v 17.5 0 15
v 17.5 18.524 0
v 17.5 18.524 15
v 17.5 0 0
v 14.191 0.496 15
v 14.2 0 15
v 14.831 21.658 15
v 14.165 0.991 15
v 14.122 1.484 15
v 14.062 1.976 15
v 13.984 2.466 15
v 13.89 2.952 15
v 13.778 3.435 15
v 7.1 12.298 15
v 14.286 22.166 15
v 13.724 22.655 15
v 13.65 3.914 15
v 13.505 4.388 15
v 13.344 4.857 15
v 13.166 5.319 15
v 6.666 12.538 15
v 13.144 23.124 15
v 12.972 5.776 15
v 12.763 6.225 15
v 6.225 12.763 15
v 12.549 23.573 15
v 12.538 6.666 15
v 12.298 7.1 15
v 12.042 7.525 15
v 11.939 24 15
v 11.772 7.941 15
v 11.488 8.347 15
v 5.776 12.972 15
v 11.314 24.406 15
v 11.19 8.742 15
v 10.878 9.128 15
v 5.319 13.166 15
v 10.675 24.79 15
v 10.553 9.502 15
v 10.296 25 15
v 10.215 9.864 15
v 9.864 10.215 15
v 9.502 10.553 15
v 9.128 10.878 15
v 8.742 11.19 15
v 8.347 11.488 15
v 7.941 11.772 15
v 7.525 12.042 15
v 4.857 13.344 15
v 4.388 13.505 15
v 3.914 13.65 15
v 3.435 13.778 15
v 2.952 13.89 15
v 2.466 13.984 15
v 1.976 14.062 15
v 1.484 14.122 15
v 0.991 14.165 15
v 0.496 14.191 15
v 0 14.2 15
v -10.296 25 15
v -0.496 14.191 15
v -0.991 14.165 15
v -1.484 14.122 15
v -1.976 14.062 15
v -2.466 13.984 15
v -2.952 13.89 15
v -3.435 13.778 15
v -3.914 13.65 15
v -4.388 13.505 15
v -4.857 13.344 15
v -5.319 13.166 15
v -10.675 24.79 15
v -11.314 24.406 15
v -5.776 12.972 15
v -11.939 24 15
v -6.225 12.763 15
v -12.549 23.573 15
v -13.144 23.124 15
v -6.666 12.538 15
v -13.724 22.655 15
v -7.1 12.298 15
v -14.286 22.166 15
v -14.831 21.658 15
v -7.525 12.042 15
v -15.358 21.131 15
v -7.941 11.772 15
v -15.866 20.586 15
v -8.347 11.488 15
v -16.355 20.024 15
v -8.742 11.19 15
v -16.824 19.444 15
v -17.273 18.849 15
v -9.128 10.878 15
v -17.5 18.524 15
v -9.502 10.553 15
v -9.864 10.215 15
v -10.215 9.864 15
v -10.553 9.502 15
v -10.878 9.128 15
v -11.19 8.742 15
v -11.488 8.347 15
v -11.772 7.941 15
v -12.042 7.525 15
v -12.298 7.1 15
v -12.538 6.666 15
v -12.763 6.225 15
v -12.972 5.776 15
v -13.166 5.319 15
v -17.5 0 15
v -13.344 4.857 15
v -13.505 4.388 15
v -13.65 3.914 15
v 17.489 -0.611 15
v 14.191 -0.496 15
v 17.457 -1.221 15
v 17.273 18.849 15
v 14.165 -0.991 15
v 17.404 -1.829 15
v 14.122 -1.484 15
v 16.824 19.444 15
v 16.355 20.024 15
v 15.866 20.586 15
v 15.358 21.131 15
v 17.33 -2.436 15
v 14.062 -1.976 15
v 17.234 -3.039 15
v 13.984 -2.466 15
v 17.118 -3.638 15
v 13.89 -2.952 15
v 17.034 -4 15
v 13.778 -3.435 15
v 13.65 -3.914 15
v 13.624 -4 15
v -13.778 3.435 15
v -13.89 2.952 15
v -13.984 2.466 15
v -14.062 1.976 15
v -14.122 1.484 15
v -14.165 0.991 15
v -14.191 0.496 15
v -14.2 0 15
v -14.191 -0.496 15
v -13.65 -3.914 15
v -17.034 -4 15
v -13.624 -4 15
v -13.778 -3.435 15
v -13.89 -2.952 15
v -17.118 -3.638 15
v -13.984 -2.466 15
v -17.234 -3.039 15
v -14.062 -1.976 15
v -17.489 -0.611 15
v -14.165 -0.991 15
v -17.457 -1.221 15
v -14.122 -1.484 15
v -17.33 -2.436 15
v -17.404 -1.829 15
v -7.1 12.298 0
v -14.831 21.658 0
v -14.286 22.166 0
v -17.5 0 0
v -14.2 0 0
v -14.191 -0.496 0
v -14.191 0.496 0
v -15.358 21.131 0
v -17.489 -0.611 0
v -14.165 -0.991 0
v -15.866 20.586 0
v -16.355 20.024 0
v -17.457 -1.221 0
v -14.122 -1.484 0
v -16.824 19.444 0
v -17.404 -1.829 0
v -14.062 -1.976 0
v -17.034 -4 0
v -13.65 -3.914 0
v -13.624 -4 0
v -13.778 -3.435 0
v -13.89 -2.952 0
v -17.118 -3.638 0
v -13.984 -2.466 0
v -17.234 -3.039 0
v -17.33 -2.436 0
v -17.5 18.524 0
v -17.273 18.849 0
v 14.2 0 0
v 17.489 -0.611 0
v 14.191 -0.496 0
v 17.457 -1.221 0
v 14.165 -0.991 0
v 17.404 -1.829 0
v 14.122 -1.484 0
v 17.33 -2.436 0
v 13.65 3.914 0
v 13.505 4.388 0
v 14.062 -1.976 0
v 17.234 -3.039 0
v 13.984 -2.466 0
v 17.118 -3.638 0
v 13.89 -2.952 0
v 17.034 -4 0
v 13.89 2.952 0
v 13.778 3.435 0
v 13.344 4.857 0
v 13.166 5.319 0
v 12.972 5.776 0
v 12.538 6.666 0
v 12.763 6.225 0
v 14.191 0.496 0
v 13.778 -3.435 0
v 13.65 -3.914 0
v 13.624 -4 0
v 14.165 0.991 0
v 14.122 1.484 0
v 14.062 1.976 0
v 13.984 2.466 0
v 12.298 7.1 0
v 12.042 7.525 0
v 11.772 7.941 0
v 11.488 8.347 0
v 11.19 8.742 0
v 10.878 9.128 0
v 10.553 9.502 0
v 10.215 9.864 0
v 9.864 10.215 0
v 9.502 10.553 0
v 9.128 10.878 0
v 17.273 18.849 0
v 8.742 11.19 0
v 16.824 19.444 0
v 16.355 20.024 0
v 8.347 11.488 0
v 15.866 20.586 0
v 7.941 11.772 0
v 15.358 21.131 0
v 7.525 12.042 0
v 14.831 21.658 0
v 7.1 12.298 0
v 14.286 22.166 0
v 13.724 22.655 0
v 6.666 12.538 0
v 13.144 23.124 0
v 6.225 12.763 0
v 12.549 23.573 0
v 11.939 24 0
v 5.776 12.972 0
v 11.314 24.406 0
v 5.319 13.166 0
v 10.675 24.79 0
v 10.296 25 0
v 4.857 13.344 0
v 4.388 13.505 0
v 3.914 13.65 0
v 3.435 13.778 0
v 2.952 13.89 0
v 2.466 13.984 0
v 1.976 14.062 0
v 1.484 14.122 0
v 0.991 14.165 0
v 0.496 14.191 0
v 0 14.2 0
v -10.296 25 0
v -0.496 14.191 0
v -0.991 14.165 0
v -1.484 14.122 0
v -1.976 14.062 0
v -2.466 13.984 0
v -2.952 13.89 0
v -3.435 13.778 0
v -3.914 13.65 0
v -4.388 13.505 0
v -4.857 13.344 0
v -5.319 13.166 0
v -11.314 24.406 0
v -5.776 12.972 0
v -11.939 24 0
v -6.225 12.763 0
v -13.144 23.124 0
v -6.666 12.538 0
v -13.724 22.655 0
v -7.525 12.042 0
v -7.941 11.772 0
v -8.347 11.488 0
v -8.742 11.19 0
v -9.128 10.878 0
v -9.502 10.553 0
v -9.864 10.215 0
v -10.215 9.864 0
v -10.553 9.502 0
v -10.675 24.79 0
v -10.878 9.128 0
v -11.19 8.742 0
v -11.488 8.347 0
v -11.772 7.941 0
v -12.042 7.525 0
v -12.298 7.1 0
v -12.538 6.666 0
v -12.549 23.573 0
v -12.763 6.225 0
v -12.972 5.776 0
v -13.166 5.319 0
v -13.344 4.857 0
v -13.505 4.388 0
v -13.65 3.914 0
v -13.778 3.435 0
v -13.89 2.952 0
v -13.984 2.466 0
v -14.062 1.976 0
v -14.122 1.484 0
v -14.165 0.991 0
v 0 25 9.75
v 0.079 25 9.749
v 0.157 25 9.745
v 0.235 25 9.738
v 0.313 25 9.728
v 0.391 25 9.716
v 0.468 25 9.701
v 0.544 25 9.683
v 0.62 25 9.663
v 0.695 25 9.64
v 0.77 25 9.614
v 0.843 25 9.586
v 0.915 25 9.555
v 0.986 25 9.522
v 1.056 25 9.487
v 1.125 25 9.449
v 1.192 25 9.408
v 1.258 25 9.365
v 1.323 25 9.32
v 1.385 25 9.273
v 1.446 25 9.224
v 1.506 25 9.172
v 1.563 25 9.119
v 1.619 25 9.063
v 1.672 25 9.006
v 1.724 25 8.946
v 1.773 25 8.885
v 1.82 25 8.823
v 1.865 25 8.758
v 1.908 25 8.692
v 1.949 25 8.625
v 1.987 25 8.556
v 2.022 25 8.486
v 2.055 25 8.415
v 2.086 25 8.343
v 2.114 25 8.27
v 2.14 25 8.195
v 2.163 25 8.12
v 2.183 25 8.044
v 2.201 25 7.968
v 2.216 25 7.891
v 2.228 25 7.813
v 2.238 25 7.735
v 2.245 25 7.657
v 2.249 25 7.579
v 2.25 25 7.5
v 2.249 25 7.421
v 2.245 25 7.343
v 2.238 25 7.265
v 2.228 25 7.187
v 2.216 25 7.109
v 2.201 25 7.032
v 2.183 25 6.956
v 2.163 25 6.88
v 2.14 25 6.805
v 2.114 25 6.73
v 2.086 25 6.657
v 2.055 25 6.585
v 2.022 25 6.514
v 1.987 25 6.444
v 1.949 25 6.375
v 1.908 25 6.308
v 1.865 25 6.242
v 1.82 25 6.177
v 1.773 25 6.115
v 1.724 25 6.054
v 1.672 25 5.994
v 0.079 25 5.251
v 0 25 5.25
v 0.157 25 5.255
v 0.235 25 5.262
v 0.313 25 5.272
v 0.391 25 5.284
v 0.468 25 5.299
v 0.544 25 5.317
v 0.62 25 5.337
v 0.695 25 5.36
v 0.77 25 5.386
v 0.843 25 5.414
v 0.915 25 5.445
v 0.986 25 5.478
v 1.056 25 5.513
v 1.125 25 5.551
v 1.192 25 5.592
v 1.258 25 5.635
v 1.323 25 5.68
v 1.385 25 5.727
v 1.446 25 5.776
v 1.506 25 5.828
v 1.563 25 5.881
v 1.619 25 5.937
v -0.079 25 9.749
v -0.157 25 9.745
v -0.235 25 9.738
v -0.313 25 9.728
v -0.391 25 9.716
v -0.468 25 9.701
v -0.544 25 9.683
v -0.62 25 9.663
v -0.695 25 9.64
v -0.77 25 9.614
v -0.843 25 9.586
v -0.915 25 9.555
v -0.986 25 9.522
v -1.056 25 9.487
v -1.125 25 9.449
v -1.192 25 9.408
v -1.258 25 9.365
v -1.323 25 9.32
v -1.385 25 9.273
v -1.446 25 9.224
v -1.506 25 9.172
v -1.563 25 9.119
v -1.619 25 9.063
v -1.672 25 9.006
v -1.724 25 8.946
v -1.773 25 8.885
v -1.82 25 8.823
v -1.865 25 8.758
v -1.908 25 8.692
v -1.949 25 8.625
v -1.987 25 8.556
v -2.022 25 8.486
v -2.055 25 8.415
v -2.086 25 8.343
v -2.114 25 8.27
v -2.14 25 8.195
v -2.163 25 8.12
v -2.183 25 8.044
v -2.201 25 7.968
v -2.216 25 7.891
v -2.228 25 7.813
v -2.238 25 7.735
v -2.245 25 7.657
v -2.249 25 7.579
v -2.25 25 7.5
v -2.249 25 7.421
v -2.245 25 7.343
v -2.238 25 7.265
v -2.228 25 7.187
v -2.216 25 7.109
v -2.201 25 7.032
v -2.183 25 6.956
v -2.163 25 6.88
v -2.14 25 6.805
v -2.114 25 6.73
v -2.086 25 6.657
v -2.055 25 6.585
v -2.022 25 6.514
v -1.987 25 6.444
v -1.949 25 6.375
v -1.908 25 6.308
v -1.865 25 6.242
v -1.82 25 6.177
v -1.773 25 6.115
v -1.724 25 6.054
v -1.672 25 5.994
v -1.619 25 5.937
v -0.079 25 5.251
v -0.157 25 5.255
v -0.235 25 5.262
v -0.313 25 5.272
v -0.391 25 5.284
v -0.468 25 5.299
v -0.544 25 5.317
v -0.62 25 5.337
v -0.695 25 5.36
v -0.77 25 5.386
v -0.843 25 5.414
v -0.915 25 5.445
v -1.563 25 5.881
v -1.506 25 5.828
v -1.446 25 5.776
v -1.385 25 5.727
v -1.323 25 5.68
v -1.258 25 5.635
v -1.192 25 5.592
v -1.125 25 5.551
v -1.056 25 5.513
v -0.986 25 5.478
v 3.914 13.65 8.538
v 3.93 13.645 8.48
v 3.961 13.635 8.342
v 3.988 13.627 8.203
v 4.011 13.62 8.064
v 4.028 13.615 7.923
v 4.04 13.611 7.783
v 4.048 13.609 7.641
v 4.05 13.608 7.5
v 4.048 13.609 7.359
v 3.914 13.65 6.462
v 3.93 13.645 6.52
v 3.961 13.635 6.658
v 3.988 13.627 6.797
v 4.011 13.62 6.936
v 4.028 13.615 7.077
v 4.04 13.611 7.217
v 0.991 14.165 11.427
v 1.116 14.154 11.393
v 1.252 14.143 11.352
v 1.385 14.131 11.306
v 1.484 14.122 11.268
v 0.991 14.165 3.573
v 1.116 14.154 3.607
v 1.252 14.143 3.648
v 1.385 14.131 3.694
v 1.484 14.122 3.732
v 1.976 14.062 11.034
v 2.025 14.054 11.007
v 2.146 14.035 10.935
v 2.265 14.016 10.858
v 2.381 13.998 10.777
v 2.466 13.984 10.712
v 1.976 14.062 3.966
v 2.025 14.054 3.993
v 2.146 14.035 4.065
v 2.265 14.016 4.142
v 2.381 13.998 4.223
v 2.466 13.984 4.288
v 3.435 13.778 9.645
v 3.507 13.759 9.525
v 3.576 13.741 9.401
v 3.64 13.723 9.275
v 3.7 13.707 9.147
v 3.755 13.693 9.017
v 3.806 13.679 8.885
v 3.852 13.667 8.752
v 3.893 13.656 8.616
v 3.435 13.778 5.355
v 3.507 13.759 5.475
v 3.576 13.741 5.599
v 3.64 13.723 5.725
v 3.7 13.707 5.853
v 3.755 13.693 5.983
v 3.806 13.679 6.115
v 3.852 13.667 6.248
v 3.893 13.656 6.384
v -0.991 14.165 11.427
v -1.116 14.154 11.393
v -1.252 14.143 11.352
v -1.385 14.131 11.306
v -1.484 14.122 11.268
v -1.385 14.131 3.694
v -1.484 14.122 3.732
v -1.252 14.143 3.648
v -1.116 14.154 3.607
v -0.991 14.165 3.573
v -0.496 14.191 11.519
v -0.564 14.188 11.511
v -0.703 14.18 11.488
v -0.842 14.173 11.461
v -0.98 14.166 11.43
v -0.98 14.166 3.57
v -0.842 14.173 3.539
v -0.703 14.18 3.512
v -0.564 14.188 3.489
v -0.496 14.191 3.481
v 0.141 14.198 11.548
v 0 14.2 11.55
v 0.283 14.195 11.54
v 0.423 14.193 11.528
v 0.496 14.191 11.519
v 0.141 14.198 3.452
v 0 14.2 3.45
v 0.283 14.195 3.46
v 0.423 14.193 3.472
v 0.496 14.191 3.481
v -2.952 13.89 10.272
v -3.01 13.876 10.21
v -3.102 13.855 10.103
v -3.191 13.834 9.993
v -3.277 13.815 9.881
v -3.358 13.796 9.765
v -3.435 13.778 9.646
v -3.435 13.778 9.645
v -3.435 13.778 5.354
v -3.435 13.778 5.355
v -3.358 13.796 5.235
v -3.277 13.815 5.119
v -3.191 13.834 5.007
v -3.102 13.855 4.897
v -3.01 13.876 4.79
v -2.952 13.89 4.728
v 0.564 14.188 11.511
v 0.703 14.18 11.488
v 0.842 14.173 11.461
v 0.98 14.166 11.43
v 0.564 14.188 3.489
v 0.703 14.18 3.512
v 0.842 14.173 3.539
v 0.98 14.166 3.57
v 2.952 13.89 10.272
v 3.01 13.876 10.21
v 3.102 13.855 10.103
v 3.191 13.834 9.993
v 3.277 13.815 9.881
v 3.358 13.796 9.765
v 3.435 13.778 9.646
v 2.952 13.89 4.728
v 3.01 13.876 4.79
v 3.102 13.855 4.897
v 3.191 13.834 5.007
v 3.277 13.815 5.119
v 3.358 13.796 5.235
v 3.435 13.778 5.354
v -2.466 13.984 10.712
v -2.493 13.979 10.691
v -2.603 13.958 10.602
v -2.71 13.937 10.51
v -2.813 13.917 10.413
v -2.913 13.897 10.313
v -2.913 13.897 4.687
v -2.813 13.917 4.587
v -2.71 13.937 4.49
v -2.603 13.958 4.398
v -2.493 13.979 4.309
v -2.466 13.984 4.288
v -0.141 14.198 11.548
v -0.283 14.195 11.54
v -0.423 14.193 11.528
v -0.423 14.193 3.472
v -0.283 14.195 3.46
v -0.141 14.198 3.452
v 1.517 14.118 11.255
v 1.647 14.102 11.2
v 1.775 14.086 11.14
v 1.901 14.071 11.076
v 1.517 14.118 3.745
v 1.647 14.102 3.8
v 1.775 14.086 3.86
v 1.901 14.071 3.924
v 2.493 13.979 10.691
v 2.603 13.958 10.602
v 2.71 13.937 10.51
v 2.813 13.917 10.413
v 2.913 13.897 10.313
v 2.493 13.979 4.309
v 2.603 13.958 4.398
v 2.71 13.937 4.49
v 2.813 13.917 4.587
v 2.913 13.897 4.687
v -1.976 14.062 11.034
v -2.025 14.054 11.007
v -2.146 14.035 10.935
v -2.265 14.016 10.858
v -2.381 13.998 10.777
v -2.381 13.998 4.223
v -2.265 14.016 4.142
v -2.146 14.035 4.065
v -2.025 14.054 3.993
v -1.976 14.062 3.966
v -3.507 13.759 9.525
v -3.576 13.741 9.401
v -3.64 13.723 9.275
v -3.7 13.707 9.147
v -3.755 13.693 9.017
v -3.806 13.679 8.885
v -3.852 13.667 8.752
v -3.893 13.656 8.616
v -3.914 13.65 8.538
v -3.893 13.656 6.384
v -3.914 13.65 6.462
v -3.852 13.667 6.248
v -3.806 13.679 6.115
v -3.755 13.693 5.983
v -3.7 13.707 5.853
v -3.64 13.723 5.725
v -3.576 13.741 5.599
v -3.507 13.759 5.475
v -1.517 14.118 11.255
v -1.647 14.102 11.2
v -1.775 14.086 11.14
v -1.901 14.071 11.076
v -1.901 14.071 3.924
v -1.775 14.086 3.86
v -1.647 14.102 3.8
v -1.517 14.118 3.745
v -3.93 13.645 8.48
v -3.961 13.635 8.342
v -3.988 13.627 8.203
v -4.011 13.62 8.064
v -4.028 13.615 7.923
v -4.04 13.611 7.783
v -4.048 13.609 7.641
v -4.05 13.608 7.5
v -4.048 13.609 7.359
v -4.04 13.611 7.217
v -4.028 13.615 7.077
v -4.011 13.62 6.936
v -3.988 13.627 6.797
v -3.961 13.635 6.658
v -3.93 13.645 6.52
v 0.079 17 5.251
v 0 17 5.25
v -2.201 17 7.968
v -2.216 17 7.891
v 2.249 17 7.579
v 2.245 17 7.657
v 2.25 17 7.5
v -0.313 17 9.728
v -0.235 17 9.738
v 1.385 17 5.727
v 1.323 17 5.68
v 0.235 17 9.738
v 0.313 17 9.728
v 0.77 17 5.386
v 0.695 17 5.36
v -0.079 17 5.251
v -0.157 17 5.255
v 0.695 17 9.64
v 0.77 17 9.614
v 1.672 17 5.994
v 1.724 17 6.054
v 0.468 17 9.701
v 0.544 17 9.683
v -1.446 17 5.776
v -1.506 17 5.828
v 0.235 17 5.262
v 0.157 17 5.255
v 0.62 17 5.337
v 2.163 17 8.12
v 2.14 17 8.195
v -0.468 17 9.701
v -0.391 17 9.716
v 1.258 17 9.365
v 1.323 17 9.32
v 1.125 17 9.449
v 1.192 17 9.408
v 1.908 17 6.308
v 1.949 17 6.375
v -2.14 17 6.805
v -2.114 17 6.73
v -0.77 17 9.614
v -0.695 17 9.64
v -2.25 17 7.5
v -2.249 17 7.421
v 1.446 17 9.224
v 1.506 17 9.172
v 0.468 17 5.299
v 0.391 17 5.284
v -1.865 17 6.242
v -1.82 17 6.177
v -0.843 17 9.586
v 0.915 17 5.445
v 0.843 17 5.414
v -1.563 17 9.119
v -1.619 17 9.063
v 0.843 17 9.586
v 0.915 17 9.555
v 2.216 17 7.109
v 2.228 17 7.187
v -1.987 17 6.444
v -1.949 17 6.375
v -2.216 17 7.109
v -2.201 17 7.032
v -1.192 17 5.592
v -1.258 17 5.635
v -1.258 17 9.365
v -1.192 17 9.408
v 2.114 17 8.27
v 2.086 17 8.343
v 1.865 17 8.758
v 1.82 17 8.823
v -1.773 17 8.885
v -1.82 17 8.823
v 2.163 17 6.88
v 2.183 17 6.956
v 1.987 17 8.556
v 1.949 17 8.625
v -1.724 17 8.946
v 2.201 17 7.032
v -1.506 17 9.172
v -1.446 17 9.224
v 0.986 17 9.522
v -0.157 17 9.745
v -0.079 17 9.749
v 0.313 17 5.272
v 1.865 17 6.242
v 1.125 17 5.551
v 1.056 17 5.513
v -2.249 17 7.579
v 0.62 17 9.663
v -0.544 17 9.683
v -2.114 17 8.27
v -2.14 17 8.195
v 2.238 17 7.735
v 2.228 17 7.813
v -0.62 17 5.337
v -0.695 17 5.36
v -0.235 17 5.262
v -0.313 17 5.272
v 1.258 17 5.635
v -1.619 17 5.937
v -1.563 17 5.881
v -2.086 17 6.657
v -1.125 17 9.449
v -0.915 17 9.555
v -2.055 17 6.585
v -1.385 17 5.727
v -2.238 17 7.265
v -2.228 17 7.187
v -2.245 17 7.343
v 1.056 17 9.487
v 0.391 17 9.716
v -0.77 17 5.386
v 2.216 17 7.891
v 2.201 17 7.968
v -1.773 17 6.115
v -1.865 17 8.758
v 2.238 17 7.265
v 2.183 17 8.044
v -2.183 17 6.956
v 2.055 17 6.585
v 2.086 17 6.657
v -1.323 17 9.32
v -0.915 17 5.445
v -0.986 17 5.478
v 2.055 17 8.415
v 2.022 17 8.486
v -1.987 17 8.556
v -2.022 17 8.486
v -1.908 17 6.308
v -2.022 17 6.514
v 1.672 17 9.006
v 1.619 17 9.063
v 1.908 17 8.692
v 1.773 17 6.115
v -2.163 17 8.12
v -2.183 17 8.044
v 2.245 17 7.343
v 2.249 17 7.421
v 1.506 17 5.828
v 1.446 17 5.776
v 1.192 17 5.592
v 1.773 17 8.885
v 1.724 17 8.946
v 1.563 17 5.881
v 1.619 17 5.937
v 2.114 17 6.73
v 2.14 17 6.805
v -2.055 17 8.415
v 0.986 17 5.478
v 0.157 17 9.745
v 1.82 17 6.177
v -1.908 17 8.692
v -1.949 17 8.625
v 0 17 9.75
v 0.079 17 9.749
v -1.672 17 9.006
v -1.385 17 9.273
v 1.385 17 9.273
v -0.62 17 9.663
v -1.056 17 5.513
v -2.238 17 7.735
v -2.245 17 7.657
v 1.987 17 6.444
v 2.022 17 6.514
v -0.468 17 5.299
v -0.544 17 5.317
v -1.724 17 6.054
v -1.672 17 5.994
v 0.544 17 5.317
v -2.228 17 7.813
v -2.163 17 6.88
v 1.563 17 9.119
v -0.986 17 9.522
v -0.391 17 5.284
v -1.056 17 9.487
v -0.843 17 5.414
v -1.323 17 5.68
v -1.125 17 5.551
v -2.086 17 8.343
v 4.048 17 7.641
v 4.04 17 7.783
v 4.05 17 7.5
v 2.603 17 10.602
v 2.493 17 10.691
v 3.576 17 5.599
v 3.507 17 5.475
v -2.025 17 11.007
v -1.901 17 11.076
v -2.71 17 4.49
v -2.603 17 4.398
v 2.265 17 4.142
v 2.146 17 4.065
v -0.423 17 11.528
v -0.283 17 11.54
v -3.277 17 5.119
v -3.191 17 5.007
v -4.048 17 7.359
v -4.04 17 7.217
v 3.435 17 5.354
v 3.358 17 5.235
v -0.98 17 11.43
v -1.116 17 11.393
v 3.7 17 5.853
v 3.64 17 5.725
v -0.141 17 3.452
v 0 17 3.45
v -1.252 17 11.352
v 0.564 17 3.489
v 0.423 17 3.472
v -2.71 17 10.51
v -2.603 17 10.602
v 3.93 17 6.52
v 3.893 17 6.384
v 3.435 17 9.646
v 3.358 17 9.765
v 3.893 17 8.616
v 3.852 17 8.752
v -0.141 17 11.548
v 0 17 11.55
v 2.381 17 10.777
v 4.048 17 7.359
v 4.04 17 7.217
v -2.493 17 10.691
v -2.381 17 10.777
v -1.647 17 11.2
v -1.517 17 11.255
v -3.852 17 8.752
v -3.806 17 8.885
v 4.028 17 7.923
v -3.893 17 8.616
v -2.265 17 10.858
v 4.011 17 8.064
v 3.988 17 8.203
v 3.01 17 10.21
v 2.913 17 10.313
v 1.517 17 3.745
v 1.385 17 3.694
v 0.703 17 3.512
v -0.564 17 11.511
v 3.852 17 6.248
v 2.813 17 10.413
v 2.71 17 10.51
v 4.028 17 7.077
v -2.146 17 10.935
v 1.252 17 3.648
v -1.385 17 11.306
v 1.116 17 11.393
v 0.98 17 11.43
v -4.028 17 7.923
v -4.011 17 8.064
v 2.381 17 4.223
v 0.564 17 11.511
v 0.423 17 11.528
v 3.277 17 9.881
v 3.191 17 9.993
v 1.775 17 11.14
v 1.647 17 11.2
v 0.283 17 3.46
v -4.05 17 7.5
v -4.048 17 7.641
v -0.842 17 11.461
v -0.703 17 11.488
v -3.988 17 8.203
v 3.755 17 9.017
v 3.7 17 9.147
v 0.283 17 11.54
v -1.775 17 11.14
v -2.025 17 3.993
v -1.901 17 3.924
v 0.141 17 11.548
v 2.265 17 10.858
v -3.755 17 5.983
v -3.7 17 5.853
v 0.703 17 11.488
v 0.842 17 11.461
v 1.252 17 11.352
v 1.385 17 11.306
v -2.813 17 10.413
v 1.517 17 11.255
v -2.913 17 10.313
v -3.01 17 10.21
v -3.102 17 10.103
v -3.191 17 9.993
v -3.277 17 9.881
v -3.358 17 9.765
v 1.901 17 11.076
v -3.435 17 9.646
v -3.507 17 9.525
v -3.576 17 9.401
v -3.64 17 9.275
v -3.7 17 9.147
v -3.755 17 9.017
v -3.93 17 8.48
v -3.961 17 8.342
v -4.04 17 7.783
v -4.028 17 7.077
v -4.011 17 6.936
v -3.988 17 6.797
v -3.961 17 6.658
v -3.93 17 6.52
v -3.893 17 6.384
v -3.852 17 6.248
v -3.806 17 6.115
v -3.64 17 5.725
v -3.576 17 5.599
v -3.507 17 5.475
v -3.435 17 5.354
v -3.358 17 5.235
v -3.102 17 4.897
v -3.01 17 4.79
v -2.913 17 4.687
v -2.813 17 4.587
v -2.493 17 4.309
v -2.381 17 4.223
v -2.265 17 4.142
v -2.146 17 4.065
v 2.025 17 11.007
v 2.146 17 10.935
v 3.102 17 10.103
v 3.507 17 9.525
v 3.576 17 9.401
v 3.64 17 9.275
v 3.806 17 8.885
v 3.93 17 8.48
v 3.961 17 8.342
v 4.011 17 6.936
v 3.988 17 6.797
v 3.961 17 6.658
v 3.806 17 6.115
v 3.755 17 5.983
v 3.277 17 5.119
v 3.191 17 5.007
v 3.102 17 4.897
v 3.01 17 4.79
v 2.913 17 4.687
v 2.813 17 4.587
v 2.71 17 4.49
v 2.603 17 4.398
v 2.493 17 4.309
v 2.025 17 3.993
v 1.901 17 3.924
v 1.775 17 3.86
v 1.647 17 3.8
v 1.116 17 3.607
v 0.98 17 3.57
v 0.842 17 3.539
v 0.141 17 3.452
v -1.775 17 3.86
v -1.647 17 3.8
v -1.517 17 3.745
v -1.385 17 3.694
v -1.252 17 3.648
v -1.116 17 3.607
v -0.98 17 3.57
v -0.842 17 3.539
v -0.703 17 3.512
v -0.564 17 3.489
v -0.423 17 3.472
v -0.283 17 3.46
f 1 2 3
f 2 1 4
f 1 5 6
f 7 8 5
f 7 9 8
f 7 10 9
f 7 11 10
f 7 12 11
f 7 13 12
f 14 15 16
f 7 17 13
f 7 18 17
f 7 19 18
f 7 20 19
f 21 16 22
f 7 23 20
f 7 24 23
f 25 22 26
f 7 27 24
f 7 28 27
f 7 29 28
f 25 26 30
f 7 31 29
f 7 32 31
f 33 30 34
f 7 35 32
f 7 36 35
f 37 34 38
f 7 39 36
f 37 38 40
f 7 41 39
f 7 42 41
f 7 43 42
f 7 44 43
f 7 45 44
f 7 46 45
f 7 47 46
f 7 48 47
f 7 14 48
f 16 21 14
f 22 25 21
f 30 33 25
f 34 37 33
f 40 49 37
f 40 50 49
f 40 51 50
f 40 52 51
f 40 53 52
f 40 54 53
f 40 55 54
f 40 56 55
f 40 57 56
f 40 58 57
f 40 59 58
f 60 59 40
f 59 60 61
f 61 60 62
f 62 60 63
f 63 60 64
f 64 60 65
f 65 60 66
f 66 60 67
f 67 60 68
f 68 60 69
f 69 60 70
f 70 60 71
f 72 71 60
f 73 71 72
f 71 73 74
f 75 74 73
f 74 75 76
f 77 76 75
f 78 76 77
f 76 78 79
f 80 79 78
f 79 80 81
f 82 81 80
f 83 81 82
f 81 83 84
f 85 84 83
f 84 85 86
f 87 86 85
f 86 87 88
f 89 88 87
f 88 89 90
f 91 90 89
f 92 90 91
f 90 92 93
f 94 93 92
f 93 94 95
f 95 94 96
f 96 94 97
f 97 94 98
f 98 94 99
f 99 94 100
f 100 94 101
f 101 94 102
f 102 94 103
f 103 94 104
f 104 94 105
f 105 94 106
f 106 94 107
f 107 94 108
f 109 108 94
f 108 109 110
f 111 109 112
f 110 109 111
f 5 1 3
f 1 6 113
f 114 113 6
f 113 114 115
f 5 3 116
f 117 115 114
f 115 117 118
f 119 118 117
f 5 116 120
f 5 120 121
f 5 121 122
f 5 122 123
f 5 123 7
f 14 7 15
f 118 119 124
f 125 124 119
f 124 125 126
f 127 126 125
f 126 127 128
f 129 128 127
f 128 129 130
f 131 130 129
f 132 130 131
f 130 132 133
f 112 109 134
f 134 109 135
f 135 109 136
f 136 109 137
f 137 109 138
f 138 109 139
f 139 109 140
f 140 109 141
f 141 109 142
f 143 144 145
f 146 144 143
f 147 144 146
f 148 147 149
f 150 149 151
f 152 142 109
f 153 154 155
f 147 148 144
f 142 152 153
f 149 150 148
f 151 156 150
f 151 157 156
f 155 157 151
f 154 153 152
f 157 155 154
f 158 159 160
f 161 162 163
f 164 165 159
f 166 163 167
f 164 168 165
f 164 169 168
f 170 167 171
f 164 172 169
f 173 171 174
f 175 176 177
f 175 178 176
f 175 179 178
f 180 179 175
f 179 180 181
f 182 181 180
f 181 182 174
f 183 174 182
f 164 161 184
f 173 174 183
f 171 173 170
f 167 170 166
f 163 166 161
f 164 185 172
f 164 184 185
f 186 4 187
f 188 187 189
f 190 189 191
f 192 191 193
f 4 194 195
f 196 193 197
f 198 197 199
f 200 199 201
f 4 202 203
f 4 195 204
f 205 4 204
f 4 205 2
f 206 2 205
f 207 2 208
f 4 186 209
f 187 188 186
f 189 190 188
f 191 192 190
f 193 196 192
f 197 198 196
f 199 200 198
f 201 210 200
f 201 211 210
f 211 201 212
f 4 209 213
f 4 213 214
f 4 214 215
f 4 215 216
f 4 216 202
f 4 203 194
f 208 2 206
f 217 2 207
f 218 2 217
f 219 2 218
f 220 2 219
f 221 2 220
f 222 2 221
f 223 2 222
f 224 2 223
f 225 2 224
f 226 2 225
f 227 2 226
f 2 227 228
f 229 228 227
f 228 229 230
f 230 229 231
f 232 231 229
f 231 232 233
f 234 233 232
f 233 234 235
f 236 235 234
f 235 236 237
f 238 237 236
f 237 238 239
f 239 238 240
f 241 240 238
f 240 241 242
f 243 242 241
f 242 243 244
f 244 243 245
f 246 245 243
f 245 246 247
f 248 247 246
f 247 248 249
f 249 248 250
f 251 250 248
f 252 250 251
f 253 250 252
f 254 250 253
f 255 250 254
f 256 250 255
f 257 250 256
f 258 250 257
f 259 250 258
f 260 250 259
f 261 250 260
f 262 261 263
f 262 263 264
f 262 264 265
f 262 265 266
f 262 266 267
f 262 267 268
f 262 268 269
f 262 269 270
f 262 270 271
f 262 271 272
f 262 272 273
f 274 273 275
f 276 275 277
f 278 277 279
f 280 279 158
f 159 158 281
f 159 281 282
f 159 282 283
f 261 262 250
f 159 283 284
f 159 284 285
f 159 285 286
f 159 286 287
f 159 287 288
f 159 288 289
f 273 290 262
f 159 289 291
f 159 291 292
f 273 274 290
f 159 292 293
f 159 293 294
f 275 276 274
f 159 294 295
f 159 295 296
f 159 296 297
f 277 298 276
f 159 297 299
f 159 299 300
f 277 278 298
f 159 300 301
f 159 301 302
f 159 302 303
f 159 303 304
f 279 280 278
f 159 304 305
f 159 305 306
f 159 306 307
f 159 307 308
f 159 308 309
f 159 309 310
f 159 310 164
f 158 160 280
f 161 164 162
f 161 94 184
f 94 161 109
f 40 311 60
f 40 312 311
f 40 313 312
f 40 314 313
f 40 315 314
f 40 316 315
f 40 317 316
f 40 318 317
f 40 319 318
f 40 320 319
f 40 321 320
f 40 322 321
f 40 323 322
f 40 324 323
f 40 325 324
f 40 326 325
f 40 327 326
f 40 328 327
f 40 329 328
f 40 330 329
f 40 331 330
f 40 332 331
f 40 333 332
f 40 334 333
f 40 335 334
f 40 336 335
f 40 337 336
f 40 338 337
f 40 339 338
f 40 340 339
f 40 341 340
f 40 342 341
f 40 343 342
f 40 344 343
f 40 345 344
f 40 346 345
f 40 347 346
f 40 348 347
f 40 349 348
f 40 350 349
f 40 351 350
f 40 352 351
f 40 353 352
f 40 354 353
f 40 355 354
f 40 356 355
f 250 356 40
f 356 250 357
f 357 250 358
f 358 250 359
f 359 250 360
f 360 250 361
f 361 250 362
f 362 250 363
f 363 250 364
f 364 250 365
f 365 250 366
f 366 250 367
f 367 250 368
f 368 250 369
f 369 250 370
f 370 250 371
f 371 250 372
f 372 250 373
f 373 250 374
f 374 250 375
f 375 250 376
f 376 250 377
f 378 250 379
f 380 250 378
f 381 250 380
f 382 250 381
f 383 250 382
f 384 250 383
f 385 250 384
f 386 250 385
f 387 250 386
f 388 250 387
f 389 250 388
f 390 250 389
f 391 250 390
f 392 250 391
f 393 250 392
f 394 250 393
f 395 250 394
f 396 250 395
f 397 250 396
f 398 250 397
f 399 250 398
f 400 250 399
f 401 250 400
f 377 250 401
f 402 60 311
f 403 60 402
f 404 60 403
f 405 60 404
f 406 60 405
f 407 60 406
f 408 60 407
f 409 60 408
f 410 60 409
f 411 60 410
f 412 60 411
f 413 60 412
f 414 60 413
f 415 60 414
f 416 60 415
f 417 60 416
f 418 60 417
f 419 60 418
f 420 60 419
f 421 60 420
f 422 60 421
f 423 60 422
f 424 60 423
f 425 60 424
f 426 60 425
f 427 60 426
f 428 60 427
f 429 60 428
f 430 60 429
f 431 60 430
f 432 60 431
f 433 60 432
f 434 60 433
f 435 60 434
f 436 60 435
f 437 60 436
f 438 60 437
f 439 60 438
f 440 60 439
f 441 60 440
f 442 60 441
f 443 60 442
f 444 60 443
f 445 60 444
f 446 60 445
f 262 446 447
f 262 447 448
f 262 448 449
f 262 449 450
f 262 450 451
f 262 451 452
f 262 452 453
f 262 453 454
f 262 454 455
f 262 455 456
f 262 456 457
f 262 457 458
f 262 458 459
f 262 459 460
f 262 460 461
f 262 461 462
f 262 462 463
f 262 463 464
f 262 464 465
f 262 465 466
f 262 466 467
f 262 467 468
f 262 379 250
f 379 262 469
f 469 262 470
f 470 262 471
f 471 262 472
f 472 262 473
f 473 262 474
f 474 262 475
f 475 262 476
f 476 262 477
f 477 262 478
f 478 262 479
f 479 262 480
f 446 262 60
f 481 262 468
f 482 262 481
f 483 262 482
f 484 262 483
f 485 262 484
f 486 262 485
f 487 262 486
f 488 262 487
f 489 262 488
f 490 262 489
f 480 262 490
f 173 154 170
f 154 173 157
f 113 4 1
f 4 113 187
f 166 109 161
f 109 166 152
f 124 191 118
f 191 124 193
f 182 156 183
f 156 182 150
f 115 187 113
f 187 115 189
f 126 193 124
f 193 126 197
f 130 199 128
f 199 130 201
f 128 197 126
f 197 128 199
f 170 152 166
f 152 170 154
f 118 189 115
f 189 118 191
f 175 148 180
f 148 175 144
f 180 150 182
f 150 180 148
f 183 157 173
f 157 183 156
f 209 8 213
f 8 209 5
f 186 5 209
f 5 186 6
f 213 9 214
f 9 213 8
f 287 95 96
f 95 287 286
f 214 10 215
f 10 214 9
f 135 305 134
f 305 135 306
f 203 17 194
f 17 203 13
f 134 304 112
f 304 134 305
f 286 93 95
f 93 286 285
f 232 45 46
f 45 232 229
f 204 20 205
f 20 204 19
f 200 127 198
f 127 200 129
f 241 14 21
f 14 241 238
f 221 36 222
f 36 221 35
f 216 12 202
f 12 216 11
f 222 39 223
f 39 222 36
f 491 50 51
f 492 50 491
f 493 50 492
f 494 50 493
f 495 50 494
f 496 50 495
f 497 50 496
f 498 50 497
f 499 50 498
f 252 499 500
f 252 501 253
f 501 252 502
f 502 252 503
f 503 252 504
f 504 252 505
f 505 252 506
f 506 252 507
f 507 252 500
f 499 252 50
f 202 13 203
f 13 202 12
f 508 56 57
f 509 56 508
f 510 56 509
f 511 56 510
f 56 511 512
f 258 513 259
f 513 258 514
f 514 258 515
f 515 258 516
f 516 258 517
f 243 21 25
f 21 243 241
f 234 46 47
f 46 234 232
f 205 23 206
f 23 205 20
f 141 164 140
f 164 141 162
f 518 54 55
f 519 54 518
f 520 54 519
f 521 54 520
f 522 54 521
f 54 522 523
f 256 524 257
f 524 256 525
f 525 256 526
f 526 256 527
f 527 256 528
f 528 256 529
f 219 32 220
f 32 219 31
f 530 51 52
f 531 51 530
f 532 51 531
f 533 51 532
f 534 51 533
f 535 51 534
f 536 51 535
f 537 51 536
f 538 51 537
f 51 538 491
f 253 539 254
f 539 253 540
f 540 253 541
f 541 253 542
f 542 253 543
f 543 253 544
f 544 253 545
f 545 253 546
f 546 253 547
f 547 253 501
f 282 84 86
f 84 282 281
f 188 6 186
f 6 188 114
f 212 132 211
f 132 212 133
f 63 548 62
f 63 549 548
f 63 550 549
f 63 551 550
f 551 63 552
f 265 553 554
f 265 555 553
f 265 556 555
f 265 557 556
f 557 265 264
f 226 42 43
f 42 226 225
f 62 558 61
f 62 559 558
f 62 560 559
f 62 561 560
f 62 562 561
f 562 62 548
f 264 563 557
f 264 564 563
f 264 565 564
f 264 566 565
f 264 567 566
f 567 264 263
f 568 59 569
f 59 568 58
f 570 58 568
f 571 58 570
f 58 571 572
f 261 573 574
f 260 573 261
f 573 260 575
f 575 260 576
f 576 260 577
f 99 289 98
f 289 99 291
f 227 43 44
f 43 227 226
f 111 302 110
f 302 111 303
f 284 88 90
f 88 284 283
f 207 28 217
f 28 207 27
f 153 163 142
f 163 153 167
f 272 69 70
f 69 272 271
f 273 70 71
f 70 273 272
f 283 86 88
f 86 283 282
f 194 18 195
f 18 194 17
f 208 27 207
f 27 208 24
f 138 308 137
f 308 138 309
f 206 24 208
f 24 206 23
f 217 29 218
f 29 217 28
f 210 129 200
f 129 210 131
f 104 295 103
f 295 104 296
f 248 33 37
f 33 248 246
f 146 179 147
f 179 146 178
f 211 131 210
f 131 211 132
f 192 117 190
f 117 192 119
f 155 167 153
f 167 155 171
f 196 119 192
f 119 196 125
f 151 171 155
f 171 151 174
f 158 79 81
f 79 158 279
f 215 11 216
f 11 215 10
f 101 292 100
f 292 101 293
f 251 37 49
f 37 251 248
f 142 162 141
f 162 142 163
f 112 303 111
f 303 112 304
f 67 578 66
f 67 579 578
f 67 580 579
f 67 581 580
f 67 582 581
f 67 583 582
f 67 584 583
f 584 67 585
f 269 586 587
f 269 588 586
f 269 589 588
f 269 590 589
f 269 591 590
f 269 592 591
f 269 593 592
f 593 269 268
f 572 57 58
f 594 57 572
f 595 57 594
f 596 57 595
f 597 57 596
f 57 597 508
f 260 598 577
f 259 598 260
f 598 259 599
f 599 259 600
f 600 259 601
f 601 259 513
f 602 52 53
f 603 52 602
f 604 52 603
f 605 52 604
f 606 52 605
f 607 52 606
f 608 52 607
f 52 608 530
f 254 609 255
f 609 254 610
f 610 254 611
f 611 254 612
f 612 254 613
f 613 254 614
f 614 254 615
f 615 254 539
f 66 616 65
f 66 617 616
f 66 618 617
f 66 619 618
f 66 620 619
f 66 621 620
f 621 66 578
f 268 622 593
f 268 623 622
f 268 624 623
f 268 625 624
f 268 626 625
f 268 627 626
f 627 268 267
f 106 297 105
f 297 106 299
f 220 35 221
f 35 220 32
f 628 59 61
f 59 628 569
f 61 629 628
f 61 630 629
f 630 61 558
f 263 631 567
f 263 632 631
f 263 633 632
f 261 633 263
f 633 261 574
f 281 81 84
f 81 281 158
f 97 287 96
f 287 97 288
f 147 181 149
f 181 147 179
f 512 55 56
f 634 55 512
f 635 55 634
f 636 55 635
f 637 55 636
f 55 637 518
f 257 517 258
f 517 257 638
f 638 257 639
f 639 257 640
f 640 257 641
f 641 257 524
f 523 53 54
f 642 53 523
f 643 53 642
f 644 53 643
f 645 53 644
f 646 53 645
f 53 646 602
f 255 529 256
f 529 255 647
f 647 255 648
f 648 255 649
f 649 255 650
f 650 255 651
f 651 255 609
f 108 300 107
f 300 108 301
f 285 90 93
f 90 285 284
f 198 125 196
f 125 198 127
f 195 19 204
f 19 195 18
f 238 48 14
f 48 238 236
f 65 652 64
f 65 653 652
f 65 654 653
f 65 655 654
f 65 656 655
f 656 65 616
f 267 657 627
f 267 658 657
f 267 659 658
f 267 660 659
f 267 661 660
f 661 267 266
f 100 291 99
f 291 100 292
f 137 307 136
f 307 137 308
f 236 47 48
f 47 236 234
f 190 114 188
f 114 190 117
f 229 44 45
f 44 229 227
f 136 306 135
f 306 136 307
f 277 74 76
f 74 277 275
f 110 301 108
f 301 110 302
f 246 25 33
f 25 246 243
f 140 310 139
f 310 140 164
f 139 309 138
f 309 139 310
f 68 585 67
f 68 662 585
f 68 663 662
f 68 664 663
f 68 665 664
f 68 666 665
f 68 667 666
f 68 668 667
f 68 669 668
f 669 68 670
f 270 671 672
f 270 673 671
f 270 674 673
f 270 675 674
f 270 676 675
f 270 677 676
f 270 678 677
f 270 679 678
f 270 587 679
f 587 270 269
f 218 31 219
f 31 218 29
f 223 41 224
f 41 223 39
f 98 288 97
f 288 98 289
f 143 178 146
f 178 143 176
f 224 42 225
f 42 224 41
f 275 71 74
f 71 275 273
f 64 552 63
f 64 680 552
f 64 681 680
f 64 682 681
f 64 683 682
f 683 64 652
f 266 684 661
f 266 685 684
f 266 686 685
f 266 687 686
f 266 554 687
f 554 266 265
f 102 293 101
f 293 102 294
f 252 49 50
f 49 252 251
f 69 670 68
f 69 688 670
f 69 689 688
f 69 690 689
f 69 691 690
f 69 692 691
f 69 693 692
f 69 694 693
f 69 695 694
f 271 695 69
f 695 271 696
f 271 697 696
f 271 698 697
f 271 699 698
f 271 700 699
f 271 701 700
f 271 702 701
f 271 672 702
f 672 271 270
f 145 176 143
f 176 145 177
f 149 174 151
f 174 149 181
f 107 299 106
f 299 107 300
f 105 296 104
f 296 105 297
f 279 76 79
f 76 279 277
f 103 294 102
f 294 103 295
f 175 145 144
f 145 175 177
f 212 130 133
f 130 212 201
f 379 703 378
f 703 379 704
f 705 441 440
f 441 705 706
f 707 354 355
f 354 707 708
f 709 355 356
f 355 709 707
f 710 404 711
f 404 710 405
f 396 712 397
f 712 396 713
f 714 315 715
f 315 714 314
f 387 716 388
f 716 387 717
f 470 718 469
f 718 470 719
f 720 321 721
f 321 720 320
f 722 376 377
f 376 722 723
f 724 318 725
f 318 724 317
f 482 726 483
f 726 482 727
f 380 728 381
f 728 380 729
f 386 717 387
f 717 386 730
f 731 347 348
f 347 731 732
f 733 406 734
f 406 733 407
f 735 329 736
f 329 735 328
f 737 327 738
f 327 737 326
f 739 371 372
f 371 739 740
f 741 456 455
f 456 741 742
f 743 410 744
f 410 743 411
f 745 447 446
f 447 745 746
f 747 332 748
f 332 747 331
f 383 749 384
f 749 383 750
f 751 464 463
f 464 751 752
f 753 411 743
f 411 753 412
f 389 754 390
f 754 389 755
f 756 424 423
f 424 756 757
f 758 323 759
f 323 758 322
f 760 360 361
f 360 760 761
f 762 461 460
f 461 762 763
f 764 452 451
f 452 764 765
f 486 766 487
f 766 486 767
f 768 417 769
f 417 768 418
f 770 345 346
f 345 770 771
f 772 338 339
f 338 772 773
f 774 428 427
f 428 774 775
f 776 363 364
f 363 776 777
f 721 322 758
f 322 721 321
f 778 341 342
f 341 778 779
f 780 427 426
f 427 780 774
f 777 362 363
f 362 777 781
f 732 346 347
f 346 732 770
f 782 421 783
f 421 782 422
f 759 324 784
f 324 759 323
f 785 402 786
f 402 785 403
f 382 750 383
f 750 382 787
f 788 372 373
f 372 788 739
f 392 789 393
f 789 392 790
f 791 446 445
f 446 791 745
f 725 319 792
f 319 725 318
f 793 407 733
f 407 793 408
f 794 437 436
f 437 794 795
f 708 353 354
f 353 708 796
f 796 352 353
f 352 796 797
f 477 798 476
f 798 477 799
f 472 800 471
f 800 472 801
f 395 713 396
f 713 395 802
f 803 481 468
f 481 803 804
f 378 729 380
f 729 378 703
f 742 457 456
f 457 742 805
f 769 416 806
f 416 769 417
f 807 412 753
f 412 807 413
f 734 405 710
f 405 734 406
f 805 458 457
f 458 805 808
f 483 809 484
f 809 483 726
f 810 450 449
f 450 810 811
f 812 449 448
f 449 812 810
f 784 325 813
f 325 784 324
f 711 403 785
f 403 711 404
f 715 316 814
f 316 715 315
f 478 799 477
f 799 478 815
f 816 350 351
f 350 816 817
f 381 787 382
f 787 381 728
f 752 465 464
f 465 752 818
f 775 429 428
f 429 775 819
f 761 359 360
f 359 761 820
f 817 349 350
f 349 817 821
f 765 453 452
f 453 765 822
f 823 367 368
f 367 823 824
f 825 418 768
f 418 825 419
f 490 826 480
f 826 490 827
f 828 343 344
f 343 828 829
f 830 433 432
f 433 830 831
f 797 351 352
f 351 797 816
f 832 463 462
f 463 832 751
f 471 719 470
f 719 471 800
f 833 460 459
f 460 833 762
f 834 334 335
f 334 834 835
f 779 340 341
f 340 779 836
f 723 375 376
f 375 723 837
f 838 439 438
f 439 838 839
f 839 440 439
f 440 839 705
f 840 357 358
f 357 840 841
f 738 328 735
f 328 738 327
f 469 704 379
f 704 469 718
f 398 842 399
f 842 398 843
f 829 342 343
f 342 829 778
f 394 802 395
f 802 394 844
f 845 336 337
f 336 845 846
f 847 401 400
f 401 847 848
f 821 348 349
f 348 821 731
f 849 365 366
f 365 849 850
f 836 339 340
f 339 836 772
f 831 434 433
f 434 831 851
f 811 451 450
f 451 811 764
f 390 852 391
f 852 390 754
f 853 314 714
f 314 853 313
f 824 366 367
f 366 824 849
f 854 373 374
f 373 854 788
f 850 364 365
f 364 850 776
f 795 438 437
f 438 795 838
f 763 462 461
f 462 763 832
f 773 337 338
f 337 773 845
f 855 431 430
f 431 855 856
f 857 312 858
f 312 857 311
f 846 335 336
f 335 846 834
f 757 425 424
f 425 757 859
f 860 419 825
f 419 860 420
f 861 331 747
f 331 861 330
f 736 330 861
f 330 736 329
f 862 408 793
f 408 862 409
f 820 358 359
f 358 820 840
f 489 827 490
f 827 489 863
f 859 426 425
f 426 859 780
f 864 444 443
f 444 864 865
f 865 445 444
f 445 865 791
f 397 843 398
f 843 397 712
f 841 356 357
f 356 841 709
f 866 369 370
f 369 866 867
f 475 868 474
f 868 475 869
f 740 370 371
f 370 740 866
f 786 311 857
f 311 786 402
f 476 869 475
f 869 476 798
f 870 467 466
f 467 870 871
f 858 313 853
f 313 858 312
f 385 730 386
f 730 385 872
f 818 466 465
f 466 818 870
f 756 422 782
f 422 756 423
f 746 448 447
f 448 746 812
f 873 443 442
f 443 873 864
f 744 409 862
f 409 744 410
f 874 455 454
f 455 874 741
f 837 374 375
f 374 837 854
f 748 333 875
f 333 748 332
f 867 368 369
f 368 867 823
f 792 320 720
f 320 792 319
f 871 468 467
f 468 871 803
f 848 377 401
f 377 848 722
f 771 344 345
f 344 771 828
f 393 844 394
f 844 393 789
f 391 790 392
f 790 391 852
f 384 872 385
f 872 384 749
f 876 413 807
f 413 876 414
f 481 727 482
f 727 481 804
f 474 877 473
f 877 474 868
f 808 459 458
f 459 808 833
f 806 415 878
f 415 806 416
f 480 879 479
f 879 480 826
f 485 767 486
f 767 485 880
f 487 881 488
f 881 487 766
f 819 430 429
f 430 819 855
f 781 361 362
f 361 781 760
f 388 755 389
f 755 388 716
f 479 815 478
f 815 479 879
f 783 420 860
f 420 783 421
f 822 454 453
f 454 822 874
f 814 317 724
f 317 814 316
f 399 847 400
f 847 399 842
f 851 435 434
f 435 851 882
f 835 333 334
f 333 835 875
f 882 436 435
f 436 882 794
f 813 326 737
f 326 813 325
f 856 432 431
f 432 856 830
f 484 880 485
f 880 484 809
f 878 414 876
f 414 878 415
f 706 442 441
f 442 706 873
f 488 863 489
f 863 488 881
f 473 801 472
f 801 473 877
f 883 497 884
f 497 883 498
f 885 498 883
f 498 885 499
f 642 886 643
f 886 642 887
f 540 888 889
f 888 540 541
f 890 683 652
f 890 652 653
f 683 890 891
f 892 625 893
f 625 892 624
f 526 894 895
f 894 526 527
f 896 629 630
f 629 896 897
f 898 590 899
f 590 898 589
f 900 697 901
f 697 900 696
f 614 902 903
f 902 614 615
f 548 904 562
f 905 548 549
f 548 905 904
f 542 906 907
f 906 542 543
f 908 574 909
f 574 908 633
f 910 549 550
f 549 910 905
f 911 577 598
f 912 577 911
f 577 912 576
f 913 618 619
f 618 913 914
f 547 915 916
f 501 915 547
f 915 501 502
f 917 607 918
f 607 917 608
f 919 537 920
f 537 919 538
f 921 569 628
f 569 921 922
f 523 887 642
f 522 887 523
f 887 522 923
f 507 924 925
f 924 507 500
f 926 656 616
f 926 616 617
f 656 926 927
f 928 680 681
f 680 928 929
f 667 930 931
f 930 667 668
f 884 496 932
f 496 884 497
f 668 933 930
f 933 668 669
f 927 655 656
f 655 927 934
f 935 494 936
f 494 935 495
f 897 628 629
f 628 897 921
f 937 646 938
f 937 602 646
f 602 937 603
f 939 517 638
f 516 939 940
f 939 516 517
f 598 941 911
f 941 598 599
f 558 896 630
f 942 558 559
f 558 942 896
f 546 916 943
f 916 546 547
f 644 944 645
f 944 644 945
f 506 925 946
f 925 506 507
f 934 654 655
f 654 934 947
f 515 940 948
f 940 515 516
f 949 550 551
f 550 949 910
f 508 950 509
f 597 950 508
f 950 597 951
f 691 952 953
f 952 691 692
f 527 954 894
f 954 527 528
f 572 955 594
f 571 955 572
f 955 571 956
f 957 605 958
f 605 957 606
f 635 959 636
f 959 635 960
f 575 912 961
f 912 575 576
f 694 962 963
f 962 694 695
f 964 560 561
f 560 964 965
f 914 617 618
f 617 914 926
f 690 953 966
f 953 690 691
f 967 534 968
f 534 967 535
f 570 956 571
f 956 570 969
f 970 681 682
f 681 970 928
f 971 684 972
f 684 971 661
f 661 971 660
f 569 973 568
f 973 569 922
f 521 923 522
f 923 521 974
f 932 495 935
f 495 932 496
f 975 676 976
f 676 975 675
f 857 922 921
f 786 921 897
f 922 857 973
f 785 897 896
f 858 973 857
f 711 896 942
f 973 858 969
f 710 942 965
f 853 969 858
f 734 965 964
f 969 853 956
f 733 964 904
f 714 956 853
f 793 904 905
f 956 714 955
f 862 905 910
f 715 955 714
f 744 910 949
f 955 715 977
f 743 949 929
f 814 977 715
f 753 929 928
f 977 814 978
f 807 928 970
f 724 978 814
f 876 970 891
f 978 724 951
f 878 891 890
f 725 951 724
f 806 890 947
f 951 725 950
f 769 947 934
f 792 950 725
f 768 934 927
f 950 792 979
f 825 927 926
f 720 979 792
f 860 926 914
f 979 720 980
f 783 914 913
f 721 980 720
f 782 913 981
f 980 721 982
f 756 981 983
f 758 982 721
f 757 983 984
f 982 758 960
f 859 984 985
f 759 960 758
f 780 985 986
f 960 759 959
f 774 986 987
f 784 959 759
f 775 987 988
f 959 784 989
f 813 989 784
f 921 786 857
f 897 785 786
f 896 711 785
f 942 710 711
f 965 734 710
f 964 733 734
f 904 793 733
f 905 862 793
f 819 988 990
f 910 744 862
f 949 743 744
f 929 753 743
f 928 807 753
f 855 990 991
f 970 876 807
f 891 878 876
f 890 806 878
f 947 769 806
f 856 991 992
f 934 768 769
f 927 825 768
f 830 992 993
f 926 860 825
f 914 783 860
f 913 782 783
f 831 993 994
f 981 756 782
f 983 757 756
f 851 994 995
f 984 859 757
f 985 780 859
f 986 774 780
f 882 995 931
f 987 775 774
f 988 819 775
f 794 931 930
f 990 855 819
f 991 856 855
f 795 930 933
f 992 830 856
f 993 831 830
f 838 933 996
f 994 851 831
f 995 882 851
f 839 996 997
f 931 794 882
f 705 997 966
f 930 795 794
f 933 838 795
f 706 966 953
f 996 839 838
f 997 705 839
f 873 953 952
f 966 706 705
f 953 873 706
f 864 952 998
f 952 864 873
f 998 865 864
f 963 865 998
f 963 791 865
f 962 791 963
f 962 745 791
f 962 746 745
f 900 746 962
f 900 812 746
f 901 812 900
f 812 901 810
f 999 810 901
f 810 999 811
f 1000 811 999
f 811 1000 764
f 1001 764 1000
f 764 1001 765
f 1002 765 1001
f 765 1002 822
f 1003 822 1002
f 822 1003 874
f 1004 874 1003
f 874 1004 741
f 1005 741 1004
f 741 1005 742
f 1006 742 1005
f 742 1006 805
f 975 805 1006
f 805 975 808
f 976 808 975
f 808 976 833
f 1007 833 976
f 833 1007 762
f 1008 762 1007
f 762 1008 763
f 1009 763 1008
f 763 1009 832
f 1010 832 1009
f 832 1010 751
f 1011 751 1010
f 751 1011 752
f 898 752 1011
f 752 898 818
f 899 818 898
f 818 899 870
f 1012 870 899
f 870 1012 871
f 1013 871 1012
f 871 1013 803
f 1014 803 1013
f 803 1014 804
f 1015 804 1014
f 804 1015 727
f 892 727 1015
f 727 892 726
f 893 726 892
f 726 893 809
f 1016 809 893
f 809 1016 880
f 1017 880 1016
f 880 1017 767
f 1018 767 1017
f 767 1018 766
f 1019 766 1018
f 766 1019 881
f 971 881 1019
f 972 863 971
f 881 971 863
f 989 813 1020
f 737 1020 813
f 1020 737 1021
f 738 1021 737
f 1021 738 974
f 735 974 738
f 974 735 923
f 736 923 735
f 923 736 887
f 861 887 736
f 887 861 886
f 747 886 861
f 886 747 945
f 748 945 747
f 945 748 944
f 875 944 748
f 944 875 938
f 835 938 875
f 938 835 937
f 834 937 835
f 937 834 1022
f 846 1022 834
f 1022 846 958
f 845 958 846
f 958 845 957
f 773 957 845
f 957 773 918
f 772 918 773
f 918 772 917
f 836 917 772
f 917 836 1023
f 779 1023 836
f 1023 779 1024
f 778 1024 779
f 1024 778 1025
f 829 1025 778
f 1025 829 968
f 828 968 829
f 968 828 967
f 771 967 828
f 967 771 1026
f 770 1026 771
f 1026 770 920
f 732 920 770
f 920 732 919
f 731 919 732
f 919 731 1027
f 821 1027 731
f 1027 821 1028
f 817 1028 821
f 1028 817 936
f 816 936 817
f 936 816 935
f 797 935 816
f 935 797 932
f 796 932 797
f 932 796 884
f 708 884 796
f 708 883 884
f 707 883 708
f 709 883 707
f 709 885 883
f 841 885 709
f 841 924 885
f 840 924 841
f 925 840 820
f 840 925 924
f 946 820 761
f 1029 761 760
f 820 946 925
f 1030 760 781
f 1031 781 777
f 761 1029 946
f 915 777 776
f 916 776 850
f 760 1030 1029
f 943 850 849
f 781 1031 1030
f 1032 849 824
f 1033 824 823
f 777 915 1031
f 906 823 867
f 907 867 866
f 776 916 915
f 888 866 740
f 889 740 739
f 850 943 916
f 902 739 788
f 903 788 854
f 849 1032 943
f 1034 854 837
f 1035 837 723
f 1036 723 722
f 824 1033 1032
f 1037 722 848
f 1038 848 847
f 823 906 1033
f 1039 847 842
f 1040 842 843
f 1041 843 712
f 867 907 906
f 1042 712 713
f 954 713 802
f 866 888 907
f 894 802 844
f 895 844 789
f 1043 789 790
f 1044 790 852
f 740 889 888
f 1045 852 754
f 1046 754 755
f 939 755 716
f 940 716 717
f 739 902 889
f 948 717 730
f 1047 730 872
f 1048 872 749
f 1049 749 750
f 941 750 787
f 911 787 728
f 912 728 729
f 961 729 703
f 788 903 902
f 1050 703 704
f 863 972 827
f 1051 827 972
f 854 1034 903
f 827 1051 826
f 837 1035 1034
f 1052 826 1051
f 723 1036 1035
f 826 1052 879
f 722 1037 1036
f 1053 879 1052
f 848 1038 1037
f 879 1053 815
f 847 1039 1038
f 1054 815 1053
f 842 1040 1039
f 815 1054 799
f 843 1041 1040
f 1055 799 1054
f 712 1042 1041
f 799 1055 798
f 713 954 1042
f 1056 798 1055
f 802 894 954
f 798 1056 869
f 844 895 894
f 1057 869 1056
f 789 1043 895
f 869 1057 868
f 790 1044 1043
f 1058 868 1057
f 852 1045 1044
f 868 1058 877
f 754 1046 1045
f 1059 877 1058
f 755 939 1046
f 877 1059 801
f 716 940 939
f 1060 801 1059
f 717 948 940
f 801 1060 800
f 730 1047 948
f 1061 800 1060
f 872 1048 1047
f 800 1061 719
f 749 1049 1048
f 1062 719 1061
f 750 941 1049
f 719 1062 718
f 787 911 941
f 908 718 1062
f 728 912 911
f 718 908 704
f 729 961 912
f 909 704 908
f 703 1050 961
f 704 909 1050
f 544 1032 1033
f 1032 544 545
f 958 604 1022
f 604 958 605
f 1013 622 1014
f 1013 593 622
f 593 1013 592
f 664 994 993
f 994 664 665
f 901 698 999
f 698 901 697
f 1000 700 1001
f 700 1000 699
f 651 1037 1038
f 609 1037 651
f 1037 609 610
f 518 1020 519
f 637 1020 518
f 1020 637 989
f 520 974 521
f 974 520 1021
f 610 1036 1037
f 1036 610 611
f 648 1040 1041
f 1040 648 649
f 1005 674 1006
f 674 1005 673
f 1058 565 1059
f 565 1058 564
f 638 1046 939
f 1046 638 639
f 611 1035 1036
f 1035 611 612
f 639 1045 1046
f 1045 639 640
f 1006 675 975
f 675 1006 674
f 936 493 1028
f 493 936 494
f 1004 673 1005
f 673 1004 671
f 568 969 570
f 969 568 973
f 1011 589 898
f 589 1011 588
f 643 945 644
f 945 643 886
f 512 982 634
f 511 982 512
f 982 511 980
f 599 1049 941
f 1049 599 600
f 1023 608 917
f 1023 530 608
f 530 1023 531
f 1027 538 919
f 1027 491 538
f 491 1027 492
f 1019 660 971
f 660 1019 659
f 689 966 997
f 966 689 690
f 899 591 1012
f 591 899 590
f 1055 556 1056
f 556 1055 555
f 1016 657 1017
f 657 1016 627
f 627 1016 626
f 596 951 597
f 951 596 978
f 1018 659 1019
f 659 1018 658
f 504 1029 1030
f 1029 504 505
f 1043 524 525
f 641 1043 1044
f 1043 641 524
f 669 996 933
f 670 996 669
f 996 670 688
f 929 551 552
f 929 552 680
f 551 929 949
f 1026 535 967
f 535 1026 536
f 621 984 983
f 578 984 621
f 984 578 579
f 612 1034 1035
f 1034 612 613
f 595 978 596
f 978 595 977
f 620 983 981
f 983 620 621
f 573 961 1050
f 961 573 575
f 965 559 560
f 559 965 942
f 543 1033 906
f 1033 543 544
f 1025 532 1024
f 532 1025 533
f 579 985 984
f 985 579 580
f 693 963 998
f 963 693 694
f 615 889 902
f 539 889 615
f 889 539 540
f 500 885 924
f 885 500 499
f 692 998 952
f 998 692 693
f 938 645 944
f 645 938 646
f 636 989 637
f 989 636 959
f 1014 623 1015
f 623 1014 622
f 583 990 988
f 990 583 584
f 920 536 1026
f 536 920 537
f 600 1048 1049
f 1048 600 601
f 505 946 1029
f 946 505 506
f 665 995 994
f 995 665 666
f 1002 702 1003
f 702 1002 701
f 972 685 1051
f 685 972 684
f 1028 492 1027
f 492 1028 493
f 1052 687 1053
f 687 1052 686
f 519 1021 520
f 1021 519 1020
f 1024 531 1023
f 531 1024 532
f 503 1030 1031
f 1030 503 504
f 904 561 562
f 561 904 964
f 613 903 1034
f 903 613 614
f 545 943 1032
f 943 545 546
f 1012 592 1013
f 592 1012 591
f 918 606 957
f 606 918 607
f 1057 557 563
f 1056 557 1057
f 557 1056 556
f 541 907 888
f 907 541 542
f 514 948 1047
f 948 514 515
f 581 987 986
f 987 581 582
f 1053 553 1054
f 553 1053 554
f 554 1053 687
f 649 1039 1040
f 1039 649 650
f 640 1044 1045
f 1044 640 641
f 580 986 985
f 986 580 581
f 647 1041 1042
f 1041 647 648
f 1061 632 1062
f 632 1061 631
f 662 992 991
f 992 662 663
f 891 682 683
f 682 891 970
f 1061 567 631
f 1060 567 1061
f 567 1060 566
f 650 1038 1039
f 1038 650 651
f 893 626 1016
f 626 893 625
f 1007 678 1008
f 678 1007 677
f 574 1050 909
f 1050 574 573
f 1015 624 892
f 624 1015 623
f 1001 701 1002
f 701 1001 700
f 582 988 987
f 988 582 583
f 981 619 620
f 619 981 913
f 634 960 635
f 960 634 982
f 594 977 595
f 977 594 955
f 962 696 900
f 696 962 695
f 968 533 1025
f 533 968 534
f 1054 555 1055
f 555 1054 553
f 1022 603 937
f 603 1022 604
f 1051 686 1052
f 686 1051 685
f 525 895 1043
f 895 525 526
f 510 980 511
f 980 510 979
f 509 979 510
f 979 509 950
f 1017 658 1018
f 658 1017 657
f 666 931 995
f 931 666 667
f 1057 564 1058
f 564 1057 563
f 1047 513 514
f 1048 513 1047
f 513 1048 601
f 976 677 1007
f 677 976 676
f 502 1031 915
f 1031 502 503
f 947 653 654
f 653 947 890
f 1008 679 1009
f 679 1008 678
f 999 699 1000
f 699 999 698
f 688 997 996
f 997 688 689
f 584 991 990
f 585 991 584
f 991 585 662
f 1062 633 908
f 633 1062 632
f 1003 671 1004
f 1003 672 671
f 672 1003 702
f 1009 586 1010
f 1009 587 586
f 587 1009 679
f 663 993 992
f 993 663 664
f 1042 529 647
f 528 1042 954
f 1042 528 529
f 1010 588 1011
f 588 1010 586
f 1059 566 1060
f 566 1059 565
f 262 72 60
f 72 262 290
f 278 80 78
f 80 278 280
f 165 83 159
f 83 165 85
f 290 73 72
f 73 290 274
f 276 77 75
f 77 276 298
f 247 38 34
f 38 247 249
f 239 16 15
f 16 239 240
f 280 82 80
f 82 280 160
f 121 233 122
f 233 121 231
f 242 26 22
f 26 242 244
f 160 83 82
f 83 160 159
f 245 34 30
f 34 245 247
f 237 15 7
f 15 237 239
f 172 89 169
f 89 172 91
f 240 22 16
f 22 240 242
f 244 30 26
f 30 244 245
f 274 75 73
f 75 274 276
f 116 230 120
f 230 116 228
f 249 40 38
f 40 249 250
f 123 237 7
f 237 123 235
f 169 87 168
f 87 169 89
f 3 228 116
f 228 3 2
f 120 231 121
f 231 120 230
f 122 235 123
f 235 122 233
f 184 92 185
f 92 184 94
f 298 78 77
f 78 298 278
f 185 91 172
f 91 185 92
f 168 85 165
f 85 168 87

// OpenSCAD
sides=180;

body_diameter=28.4;

//
//  Adjust clip width accordingly.
//
clip_width=35 - (28.4 - body_diameter);
clip_depth=25;
clip_thickness=15;

intersection () {
  difference () {
    difference () {
      //
      //  Wall edge cube and clip cylinder
      //
      union () {
        translate ([-(clip_width / 2), 0, 0])
          cube ([clip_width, clip_depth, clip_thickness]);
        cylinder (d=clip_width, h=clip_thickness, $fn=sides);
      }

      //
      //  Remove inner material
      //
      translate ([0, 0, -0.1])
        cylinder (d=body_diameter, h=clip_thickness + 0.2, $fn=sides);
    }

    //
    //  Cuts off end of clip cylinder to make open clip
    //
    translate ([-(clip_width / 2), -34, -0.1])
      cube ([clip_width, 30, clip_thickness + 0.2]);

    //
    //  Screw hole and head recess
    //
    translate ([0, clip_depth + 0.1, clip_thickness / 2])
      rotate ([90, 0, 0])
        cylinder (d=4.5, h=20, $fn=sides);
    translate ([0, clip_depth - 8, clip_thickness / 2])
      rotate ([90, 0, 0])
        cylinder (d=8.1, h=20, $fn=sides);
  }

  //
  //  Make wall corners rounded
  //
  translate ([0, 4 + (30.7 - body_diameter), 0])
    cylinder (d=clip_width + 10 - (30.7 - body_diameter), h=15, $fn=sides);
}
